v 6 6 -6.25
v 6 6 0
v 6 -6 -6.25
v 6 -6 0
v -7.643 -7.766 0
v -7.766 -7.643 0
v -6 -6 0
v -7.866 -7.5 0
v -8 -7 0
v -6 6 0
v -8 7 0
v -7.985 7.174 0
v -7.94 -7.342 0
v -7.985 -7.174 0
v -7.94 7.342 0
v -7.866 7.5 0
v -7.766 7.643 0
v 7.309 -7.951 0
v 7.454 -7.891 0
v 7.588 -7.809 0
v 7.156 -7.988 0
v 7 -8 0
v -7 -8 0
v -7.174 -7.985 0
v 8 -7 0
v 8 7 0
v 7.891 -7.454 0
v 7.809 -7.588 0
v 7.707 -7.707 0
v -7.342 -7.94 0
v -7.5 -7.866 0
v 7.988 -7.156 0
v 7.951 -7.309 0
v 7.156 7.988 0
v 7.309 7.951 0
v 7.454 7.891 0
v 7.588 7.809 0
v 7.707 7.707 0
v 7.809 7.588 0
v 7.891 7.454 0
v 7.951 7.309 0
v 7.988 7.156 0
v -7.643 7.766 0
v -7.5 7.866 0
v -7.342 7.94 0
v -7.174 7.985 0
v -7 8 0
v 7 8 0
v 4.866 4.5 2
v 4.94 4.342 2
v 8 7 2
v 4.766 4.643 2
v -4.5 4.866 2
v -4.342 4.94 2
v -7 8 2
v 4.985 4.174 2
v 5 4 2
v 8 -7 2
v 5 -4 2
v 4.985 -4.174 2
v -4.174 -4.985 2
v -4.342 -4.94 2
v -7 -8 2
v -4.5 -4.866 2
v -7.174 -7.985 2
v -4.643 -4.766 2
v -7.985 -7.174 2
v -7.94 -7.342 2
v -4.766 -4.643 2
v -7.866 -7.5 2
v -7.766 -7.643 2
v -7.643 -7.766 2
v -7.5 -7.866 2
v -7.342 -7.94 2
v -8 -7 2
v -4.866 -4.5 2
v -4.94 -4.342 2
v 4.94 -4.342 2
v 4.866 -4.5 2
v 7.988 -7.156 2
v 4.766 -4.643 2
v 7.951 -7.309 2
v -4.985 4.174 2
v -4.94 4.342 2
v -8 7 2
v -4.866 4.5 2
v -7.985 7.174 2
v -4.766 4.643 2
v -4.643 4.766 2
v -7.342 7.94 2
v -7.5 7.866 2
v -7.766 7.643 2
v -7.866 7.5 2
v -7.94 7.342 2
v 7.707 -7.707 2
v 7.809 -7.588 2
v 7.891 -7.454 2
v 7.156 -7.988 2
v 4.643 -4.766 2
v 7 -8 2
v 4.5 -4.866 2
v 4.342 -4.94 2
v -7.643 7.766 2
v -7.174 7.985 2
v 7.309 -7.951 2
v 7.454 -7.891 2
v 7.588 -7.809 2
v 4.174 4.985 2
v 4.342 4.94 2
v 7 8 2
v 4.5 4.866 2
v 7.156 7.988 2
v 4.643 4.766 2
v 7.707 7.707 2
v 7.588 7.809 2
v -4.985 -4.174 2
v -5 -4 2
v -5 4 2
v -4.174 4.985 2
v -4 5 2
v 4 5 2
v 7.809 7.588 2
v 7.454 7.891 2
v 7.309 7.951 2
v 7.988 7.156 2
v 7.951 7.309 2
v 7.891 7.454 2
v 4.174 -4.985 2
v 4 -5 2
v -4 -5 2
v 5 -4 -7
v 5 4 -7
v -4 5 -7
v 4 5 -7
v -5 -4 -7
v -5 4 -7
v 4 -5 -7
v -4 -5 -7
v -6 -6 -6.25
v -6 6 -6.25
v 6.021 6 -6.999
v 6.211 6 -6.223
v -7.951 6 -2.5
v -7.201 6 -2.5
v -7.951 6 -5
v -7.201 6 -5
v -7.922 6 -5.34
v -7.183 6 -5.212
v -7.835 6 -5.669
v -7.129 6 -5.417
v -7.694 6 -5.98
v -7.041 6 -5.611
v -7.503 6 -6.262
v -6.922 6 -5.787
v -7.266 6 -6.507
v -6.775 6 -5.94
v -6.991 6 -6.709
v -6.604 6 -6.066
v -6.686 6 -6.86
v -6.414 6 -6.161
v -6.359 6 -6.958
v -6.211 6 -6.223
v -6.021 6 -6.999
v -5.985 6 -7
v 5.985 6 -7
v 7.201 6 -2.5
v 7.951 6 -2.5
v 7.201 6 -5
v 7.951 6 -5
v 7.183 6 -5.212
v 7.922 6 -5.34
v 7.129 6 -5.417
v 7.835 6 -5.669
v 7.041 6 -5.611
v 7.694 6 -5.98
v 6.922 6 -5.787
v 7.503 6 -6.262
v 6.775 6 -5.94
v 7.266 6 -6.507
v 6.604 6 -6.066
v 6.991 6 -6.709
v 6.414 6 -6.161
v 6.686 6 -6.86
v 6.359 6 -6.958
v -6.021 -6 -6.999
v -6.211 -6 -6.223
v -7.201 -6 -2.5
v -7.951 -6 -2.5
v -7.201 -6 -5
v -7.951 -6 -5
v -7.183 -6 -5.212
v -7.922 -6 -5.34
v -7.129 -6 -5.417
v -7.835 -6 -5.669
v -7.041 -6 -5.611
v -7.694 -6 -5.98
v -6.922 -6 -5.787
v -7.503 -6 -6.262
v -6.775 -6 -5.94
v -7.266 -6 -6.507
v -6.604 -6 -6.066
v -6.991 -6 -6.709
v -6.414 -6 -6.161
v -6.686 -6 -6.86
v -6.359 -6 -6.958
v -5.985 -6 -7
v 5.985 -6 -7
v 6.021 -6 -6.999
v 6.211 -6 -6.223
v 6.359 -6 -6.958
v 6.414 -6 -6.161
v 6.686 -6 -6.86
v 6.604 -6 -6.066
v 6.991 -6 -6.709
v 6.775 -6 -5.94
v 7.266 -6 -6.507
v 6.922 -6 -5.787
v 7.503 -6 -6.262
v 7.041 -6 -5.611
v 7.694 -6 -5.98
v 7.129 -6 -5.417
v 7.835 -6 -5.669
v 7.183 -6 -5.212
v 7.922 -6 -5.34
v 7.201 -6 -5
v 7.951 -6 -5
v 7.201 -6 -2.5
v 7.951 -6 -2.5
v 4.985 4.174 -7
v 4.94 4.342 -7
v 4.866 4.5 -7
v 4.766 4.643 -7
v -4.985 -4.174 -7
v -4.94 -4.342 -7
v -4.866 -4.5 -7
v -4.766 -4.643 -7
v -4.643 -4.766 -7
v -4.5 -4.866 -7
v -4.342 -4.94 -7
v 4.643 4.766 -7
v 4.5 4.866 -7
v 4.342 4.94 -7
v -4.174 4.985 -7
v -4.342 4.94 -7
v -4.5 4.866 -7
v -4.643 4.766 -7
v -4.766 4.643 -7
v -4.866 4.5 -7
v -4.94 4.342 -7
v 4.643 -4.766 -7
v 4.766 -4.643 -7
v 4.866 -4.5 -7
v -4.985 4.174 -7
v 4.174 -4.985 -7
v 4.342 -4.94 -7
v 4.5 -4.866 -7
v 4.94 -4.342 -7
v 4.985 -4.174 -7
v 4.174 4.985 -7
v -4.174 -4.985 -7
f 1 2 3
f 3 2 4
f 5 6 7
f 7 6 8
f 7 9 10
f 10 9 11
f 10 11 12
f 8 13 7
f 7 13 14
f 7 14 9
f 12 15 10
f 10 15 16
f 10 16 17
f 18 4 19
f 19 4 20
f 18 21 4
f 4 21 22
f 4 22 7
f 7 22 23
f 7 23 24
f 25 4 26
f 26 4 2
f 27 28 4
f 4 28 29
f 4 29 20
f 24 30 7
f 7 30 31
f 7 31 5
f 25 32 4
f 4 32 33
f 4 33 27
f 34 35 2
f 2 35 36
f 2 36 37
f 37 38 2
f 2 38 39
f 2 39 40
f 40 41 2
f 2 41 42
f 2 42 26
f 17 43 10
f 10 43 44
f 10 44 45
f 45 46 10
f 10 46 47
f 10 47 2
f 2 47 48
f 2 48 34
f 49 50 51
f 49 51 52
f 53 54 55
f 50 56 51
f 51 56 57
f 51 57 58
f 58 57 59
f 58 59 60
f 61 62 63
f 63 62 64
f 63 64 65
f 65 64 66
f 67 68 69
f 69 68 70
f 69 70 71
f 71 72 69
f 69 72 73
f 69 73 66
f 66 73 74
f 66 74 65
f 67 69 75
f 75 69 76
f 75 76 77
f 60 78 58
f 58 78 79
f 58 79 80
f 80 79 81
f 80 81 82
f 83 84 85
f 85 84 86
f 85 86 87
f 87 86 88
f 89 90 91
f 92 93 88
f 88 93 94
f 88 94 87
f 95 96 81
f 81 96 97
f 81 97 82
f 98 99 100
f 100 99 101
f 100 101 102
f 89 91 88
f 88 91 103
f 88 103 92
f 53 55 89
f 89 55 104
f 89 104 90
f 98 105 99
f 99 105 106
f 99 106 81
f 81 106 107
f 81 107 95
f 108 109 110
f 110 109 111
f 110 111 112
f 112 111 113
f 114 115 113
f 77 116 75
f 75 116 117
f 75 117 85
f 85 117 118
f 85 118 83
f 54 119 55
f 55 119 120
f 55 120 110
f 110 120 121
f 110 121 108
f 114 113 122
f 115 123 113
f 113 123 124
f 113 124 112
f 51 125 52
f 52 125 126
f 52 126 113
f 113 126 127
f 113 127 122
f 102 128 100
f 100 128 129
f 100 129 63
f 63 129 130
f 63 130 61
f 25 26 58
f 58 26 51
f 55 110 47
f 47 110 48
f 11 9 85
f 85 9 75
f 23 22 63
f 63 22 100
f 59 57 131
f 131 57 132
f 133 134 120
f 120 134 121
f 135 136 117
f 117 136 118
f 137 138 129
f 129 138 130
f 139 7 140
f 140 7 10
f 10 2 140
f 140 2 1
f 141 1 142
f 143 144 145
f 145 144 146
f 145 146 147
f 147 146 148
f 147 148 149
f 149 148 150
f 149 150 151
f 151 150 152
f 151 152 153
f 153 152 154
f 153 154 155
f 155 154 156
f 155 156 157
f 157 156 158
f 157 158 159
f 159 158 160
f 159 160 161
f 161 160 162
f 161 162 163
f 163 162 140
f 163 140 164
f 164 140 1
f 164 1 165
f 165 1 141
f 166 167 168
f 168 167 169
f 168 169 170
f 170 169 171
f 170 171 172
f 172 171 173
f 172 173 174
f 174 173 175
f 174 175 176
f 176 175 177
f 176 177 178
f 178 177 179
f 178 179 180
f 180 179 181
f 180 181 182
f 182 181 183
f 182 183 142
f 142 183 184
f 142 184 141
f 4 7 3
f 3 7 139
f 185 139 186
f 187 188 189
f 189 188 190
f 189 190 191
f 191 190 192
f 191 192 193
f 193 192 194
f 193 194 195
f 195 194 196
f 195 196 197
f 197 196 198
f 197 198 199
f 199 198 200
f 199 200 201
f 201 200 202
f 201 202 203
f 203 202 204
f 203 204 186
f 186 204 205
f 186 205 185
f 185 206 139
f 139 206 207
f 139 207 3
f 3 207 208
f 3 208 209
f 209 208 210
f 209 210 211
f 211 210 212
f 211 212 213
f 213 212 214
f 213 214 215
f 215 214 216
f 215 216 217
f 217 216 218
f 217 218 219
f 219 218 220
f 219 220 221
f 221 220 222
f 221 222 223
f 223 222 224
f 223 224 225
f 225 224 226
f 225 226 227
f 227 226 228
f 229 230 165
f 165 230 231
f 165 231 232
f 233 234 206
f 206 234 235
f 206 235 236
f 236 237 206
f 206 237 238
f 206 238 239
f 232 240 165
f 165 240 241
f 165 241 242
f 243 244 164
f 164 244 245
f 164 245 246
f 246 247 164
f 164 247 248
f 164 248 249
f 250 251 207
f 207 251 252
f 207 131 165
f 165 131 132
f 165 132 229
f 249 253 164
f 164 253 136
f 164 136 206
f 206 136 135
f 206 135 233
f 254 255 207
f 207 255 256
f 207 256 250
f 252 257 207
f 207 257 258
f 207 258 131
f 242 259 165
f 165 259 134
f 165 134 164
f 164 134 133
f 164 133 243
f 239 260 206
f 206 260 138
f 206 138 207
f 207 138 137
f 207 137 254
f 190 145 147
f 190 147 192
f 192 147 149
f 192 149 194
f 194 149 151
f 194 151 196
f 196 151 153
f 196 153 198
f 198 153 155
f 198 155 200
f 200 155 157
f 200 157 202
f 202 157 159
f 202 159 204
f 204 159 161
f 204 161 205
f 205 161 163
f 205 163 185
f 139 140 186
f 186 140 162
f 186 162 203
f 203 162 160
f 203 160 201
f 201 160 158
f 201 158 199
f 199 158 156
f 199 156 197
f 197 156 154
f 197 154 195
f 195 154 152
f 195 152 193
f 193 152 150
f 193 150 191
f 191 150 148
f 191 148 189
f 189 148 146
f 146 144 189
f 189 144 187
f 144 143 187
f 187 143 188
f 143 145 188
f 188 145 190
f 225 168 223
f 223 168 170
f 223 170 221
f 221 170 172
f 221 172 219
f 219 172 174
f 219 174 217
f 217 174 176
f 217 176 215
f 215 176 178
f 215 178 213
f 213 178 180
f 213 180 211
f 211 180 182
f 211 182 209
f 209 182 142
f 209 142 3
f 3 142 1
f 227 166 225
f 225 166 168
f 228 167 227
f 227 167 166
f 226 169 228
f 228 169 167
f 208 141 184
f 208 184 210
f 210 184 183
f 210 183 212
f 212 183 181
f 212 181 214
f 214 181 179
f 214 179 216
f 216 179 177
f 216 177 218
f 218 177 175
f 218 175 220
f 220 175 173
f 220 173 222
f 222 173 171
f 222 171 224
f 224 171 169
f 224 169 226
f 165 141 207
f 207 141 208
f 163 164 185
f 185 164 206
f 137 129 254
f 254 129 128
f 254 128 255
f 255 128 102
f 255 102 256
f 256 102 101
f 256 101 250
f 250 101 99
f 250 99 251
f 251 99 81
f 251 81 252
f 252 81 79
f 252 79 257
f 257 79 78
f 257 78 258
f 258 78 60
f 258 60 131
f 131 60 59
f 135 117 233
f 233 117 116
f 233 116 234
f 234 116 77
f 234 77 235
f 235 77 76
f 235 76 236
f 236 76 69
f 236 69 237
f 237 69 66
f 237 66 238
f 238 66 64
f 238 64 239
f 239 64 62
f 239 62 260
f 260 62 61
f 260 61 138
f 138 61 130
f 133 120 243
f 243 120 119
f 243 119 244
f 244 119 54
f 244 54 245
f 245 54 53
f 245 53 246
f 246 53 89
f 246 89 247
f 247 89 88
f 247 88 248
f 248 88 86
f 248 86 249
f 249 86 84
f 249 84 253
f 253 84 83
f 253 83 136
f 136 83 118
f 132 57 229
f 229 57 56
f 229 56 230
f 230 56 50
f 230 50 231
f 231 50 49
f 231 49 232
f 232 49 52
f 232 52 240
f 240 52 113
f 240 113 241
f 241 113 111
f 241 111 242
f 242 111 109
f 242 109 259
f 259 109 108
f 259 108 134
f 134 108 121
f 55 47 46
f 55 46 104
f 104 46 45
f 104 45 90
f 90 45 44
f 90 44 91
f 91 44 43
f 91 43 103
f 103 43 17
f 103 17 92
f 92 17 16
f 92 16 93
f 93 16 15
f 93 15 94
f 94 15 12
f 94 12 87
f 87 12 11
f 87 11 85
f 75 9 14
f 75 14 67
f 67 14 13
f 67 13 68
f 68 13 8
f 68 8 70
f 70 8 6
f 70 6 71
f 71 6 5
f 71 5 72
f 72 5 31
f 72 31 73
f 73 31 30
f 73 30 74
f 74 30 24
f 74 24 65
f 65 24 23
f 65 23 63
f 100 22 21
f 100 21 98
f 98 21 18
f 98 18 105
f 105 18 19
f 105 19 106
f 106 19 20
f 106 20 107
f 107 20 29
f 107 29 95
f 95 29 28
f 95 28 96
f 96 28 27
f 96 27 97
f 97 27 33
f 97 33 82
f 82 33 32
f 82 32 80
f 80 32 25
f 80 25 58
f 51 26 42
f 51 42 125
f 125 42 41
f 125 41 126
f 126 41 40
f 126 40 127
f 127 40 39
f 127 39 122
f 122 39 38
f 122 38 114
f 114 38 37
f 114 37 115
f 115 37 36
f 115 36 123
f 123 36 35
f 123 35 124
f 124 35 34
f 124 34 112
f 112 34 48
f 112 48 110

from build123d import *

# Parameters (mm, degrees)
SKETCH1_W           = 16
SKETCH1_H           = 16
SKETCH1_W_2         = 10
SKETCH1_H_2         = 10
BOSS_EXTRUDE1_DEPTH = 2
SKETCH2_W           = 12
SKETCH2_H           = 12
SKETCH2_W_2         = 10
SKETCH2_H_2         = 10
BOSS_EXTRUDE2_DEPTH = 7
BOSS_EXTRUDE3_DEPTH = 12
FILLET1_R           = 1


with BuildPart() as part:
    # Sketch1 → Boss-Extrude1 (new body)
    with BuildSketch(Plane.XY):
        Rectangle(SKETCH1_W, SKETCH1_H)
        Rectangle(SKETCH1_W_2, SKETCH1_H_2, mode=Mode.SUBTRACT)
    extrude(amount=BOSS_EXTRUDE1_DEPTH)

    # Sketch2 → Boss-Extrude2 (add)
    with BuildSketch(Plane.XY):
        Rectangle(SKETCH2_W, SKETCH2_H)
        Rectangle(SKETCH2_W_2, SKETCH2_H_2, mode=Mode.SUBTRACT)
    extrude(amount=-BOSS_EXTRUDE2_DEPTH)

    # Sketch3 → Boss-Extrude3 (add)
    with BuildSketch(Plane(origin=(0, 6, 0), x_dir=(1, 0, 0), z_dir=(0, 1, 0))):
        with BuildLine():
            Line((-6, 7), (-6, 6.249625002))
            ThreePointArc((-6, 6.249625002), (-6.851829776, 5.866467368), (-7.200624902, 5))
            Line((-7.200624902, 5), (-7.200624902, 2.5))
            Line((-7.200624902, 2.5), (-7.950624902, 2.5))
            Line((-7.950624902, 2.5), (-7.950624902, 5))
            ThreePointArc((-7.950624902, 5), (-7.382224013, 6.396865912), (-6, 7))
        make_face()
    boss_extrude3 = extrude(amount=-BOSS_EXTRUDE3_DEPTH)

    # Mirror1: Boss-Extrude3 across plane
    add(boss_extrude3.mirror(Plane(origin=(0, 0, 0), x_dir=(0, 0, 1), z_dir=(1, 0, 0))))

    # Fillet1
    fillet1_edges = [part.edges().sort_by_distance(p)[0] for p in [
        (5, -5, -2.5),
        (5, 5, -2.5),
        (-5, 5, -2.5),
        (-5, -5, -2.5),
        (6, 0, -7),
        (-6, 0, -7),
        (8, -8, 1),
        (-8, -8, 1),
        (-8, 8, 1),
        (8, 8, 1),
    ]]
    fillet(fillet1_edges, radius=FILLET1_R)


solid = part.part
